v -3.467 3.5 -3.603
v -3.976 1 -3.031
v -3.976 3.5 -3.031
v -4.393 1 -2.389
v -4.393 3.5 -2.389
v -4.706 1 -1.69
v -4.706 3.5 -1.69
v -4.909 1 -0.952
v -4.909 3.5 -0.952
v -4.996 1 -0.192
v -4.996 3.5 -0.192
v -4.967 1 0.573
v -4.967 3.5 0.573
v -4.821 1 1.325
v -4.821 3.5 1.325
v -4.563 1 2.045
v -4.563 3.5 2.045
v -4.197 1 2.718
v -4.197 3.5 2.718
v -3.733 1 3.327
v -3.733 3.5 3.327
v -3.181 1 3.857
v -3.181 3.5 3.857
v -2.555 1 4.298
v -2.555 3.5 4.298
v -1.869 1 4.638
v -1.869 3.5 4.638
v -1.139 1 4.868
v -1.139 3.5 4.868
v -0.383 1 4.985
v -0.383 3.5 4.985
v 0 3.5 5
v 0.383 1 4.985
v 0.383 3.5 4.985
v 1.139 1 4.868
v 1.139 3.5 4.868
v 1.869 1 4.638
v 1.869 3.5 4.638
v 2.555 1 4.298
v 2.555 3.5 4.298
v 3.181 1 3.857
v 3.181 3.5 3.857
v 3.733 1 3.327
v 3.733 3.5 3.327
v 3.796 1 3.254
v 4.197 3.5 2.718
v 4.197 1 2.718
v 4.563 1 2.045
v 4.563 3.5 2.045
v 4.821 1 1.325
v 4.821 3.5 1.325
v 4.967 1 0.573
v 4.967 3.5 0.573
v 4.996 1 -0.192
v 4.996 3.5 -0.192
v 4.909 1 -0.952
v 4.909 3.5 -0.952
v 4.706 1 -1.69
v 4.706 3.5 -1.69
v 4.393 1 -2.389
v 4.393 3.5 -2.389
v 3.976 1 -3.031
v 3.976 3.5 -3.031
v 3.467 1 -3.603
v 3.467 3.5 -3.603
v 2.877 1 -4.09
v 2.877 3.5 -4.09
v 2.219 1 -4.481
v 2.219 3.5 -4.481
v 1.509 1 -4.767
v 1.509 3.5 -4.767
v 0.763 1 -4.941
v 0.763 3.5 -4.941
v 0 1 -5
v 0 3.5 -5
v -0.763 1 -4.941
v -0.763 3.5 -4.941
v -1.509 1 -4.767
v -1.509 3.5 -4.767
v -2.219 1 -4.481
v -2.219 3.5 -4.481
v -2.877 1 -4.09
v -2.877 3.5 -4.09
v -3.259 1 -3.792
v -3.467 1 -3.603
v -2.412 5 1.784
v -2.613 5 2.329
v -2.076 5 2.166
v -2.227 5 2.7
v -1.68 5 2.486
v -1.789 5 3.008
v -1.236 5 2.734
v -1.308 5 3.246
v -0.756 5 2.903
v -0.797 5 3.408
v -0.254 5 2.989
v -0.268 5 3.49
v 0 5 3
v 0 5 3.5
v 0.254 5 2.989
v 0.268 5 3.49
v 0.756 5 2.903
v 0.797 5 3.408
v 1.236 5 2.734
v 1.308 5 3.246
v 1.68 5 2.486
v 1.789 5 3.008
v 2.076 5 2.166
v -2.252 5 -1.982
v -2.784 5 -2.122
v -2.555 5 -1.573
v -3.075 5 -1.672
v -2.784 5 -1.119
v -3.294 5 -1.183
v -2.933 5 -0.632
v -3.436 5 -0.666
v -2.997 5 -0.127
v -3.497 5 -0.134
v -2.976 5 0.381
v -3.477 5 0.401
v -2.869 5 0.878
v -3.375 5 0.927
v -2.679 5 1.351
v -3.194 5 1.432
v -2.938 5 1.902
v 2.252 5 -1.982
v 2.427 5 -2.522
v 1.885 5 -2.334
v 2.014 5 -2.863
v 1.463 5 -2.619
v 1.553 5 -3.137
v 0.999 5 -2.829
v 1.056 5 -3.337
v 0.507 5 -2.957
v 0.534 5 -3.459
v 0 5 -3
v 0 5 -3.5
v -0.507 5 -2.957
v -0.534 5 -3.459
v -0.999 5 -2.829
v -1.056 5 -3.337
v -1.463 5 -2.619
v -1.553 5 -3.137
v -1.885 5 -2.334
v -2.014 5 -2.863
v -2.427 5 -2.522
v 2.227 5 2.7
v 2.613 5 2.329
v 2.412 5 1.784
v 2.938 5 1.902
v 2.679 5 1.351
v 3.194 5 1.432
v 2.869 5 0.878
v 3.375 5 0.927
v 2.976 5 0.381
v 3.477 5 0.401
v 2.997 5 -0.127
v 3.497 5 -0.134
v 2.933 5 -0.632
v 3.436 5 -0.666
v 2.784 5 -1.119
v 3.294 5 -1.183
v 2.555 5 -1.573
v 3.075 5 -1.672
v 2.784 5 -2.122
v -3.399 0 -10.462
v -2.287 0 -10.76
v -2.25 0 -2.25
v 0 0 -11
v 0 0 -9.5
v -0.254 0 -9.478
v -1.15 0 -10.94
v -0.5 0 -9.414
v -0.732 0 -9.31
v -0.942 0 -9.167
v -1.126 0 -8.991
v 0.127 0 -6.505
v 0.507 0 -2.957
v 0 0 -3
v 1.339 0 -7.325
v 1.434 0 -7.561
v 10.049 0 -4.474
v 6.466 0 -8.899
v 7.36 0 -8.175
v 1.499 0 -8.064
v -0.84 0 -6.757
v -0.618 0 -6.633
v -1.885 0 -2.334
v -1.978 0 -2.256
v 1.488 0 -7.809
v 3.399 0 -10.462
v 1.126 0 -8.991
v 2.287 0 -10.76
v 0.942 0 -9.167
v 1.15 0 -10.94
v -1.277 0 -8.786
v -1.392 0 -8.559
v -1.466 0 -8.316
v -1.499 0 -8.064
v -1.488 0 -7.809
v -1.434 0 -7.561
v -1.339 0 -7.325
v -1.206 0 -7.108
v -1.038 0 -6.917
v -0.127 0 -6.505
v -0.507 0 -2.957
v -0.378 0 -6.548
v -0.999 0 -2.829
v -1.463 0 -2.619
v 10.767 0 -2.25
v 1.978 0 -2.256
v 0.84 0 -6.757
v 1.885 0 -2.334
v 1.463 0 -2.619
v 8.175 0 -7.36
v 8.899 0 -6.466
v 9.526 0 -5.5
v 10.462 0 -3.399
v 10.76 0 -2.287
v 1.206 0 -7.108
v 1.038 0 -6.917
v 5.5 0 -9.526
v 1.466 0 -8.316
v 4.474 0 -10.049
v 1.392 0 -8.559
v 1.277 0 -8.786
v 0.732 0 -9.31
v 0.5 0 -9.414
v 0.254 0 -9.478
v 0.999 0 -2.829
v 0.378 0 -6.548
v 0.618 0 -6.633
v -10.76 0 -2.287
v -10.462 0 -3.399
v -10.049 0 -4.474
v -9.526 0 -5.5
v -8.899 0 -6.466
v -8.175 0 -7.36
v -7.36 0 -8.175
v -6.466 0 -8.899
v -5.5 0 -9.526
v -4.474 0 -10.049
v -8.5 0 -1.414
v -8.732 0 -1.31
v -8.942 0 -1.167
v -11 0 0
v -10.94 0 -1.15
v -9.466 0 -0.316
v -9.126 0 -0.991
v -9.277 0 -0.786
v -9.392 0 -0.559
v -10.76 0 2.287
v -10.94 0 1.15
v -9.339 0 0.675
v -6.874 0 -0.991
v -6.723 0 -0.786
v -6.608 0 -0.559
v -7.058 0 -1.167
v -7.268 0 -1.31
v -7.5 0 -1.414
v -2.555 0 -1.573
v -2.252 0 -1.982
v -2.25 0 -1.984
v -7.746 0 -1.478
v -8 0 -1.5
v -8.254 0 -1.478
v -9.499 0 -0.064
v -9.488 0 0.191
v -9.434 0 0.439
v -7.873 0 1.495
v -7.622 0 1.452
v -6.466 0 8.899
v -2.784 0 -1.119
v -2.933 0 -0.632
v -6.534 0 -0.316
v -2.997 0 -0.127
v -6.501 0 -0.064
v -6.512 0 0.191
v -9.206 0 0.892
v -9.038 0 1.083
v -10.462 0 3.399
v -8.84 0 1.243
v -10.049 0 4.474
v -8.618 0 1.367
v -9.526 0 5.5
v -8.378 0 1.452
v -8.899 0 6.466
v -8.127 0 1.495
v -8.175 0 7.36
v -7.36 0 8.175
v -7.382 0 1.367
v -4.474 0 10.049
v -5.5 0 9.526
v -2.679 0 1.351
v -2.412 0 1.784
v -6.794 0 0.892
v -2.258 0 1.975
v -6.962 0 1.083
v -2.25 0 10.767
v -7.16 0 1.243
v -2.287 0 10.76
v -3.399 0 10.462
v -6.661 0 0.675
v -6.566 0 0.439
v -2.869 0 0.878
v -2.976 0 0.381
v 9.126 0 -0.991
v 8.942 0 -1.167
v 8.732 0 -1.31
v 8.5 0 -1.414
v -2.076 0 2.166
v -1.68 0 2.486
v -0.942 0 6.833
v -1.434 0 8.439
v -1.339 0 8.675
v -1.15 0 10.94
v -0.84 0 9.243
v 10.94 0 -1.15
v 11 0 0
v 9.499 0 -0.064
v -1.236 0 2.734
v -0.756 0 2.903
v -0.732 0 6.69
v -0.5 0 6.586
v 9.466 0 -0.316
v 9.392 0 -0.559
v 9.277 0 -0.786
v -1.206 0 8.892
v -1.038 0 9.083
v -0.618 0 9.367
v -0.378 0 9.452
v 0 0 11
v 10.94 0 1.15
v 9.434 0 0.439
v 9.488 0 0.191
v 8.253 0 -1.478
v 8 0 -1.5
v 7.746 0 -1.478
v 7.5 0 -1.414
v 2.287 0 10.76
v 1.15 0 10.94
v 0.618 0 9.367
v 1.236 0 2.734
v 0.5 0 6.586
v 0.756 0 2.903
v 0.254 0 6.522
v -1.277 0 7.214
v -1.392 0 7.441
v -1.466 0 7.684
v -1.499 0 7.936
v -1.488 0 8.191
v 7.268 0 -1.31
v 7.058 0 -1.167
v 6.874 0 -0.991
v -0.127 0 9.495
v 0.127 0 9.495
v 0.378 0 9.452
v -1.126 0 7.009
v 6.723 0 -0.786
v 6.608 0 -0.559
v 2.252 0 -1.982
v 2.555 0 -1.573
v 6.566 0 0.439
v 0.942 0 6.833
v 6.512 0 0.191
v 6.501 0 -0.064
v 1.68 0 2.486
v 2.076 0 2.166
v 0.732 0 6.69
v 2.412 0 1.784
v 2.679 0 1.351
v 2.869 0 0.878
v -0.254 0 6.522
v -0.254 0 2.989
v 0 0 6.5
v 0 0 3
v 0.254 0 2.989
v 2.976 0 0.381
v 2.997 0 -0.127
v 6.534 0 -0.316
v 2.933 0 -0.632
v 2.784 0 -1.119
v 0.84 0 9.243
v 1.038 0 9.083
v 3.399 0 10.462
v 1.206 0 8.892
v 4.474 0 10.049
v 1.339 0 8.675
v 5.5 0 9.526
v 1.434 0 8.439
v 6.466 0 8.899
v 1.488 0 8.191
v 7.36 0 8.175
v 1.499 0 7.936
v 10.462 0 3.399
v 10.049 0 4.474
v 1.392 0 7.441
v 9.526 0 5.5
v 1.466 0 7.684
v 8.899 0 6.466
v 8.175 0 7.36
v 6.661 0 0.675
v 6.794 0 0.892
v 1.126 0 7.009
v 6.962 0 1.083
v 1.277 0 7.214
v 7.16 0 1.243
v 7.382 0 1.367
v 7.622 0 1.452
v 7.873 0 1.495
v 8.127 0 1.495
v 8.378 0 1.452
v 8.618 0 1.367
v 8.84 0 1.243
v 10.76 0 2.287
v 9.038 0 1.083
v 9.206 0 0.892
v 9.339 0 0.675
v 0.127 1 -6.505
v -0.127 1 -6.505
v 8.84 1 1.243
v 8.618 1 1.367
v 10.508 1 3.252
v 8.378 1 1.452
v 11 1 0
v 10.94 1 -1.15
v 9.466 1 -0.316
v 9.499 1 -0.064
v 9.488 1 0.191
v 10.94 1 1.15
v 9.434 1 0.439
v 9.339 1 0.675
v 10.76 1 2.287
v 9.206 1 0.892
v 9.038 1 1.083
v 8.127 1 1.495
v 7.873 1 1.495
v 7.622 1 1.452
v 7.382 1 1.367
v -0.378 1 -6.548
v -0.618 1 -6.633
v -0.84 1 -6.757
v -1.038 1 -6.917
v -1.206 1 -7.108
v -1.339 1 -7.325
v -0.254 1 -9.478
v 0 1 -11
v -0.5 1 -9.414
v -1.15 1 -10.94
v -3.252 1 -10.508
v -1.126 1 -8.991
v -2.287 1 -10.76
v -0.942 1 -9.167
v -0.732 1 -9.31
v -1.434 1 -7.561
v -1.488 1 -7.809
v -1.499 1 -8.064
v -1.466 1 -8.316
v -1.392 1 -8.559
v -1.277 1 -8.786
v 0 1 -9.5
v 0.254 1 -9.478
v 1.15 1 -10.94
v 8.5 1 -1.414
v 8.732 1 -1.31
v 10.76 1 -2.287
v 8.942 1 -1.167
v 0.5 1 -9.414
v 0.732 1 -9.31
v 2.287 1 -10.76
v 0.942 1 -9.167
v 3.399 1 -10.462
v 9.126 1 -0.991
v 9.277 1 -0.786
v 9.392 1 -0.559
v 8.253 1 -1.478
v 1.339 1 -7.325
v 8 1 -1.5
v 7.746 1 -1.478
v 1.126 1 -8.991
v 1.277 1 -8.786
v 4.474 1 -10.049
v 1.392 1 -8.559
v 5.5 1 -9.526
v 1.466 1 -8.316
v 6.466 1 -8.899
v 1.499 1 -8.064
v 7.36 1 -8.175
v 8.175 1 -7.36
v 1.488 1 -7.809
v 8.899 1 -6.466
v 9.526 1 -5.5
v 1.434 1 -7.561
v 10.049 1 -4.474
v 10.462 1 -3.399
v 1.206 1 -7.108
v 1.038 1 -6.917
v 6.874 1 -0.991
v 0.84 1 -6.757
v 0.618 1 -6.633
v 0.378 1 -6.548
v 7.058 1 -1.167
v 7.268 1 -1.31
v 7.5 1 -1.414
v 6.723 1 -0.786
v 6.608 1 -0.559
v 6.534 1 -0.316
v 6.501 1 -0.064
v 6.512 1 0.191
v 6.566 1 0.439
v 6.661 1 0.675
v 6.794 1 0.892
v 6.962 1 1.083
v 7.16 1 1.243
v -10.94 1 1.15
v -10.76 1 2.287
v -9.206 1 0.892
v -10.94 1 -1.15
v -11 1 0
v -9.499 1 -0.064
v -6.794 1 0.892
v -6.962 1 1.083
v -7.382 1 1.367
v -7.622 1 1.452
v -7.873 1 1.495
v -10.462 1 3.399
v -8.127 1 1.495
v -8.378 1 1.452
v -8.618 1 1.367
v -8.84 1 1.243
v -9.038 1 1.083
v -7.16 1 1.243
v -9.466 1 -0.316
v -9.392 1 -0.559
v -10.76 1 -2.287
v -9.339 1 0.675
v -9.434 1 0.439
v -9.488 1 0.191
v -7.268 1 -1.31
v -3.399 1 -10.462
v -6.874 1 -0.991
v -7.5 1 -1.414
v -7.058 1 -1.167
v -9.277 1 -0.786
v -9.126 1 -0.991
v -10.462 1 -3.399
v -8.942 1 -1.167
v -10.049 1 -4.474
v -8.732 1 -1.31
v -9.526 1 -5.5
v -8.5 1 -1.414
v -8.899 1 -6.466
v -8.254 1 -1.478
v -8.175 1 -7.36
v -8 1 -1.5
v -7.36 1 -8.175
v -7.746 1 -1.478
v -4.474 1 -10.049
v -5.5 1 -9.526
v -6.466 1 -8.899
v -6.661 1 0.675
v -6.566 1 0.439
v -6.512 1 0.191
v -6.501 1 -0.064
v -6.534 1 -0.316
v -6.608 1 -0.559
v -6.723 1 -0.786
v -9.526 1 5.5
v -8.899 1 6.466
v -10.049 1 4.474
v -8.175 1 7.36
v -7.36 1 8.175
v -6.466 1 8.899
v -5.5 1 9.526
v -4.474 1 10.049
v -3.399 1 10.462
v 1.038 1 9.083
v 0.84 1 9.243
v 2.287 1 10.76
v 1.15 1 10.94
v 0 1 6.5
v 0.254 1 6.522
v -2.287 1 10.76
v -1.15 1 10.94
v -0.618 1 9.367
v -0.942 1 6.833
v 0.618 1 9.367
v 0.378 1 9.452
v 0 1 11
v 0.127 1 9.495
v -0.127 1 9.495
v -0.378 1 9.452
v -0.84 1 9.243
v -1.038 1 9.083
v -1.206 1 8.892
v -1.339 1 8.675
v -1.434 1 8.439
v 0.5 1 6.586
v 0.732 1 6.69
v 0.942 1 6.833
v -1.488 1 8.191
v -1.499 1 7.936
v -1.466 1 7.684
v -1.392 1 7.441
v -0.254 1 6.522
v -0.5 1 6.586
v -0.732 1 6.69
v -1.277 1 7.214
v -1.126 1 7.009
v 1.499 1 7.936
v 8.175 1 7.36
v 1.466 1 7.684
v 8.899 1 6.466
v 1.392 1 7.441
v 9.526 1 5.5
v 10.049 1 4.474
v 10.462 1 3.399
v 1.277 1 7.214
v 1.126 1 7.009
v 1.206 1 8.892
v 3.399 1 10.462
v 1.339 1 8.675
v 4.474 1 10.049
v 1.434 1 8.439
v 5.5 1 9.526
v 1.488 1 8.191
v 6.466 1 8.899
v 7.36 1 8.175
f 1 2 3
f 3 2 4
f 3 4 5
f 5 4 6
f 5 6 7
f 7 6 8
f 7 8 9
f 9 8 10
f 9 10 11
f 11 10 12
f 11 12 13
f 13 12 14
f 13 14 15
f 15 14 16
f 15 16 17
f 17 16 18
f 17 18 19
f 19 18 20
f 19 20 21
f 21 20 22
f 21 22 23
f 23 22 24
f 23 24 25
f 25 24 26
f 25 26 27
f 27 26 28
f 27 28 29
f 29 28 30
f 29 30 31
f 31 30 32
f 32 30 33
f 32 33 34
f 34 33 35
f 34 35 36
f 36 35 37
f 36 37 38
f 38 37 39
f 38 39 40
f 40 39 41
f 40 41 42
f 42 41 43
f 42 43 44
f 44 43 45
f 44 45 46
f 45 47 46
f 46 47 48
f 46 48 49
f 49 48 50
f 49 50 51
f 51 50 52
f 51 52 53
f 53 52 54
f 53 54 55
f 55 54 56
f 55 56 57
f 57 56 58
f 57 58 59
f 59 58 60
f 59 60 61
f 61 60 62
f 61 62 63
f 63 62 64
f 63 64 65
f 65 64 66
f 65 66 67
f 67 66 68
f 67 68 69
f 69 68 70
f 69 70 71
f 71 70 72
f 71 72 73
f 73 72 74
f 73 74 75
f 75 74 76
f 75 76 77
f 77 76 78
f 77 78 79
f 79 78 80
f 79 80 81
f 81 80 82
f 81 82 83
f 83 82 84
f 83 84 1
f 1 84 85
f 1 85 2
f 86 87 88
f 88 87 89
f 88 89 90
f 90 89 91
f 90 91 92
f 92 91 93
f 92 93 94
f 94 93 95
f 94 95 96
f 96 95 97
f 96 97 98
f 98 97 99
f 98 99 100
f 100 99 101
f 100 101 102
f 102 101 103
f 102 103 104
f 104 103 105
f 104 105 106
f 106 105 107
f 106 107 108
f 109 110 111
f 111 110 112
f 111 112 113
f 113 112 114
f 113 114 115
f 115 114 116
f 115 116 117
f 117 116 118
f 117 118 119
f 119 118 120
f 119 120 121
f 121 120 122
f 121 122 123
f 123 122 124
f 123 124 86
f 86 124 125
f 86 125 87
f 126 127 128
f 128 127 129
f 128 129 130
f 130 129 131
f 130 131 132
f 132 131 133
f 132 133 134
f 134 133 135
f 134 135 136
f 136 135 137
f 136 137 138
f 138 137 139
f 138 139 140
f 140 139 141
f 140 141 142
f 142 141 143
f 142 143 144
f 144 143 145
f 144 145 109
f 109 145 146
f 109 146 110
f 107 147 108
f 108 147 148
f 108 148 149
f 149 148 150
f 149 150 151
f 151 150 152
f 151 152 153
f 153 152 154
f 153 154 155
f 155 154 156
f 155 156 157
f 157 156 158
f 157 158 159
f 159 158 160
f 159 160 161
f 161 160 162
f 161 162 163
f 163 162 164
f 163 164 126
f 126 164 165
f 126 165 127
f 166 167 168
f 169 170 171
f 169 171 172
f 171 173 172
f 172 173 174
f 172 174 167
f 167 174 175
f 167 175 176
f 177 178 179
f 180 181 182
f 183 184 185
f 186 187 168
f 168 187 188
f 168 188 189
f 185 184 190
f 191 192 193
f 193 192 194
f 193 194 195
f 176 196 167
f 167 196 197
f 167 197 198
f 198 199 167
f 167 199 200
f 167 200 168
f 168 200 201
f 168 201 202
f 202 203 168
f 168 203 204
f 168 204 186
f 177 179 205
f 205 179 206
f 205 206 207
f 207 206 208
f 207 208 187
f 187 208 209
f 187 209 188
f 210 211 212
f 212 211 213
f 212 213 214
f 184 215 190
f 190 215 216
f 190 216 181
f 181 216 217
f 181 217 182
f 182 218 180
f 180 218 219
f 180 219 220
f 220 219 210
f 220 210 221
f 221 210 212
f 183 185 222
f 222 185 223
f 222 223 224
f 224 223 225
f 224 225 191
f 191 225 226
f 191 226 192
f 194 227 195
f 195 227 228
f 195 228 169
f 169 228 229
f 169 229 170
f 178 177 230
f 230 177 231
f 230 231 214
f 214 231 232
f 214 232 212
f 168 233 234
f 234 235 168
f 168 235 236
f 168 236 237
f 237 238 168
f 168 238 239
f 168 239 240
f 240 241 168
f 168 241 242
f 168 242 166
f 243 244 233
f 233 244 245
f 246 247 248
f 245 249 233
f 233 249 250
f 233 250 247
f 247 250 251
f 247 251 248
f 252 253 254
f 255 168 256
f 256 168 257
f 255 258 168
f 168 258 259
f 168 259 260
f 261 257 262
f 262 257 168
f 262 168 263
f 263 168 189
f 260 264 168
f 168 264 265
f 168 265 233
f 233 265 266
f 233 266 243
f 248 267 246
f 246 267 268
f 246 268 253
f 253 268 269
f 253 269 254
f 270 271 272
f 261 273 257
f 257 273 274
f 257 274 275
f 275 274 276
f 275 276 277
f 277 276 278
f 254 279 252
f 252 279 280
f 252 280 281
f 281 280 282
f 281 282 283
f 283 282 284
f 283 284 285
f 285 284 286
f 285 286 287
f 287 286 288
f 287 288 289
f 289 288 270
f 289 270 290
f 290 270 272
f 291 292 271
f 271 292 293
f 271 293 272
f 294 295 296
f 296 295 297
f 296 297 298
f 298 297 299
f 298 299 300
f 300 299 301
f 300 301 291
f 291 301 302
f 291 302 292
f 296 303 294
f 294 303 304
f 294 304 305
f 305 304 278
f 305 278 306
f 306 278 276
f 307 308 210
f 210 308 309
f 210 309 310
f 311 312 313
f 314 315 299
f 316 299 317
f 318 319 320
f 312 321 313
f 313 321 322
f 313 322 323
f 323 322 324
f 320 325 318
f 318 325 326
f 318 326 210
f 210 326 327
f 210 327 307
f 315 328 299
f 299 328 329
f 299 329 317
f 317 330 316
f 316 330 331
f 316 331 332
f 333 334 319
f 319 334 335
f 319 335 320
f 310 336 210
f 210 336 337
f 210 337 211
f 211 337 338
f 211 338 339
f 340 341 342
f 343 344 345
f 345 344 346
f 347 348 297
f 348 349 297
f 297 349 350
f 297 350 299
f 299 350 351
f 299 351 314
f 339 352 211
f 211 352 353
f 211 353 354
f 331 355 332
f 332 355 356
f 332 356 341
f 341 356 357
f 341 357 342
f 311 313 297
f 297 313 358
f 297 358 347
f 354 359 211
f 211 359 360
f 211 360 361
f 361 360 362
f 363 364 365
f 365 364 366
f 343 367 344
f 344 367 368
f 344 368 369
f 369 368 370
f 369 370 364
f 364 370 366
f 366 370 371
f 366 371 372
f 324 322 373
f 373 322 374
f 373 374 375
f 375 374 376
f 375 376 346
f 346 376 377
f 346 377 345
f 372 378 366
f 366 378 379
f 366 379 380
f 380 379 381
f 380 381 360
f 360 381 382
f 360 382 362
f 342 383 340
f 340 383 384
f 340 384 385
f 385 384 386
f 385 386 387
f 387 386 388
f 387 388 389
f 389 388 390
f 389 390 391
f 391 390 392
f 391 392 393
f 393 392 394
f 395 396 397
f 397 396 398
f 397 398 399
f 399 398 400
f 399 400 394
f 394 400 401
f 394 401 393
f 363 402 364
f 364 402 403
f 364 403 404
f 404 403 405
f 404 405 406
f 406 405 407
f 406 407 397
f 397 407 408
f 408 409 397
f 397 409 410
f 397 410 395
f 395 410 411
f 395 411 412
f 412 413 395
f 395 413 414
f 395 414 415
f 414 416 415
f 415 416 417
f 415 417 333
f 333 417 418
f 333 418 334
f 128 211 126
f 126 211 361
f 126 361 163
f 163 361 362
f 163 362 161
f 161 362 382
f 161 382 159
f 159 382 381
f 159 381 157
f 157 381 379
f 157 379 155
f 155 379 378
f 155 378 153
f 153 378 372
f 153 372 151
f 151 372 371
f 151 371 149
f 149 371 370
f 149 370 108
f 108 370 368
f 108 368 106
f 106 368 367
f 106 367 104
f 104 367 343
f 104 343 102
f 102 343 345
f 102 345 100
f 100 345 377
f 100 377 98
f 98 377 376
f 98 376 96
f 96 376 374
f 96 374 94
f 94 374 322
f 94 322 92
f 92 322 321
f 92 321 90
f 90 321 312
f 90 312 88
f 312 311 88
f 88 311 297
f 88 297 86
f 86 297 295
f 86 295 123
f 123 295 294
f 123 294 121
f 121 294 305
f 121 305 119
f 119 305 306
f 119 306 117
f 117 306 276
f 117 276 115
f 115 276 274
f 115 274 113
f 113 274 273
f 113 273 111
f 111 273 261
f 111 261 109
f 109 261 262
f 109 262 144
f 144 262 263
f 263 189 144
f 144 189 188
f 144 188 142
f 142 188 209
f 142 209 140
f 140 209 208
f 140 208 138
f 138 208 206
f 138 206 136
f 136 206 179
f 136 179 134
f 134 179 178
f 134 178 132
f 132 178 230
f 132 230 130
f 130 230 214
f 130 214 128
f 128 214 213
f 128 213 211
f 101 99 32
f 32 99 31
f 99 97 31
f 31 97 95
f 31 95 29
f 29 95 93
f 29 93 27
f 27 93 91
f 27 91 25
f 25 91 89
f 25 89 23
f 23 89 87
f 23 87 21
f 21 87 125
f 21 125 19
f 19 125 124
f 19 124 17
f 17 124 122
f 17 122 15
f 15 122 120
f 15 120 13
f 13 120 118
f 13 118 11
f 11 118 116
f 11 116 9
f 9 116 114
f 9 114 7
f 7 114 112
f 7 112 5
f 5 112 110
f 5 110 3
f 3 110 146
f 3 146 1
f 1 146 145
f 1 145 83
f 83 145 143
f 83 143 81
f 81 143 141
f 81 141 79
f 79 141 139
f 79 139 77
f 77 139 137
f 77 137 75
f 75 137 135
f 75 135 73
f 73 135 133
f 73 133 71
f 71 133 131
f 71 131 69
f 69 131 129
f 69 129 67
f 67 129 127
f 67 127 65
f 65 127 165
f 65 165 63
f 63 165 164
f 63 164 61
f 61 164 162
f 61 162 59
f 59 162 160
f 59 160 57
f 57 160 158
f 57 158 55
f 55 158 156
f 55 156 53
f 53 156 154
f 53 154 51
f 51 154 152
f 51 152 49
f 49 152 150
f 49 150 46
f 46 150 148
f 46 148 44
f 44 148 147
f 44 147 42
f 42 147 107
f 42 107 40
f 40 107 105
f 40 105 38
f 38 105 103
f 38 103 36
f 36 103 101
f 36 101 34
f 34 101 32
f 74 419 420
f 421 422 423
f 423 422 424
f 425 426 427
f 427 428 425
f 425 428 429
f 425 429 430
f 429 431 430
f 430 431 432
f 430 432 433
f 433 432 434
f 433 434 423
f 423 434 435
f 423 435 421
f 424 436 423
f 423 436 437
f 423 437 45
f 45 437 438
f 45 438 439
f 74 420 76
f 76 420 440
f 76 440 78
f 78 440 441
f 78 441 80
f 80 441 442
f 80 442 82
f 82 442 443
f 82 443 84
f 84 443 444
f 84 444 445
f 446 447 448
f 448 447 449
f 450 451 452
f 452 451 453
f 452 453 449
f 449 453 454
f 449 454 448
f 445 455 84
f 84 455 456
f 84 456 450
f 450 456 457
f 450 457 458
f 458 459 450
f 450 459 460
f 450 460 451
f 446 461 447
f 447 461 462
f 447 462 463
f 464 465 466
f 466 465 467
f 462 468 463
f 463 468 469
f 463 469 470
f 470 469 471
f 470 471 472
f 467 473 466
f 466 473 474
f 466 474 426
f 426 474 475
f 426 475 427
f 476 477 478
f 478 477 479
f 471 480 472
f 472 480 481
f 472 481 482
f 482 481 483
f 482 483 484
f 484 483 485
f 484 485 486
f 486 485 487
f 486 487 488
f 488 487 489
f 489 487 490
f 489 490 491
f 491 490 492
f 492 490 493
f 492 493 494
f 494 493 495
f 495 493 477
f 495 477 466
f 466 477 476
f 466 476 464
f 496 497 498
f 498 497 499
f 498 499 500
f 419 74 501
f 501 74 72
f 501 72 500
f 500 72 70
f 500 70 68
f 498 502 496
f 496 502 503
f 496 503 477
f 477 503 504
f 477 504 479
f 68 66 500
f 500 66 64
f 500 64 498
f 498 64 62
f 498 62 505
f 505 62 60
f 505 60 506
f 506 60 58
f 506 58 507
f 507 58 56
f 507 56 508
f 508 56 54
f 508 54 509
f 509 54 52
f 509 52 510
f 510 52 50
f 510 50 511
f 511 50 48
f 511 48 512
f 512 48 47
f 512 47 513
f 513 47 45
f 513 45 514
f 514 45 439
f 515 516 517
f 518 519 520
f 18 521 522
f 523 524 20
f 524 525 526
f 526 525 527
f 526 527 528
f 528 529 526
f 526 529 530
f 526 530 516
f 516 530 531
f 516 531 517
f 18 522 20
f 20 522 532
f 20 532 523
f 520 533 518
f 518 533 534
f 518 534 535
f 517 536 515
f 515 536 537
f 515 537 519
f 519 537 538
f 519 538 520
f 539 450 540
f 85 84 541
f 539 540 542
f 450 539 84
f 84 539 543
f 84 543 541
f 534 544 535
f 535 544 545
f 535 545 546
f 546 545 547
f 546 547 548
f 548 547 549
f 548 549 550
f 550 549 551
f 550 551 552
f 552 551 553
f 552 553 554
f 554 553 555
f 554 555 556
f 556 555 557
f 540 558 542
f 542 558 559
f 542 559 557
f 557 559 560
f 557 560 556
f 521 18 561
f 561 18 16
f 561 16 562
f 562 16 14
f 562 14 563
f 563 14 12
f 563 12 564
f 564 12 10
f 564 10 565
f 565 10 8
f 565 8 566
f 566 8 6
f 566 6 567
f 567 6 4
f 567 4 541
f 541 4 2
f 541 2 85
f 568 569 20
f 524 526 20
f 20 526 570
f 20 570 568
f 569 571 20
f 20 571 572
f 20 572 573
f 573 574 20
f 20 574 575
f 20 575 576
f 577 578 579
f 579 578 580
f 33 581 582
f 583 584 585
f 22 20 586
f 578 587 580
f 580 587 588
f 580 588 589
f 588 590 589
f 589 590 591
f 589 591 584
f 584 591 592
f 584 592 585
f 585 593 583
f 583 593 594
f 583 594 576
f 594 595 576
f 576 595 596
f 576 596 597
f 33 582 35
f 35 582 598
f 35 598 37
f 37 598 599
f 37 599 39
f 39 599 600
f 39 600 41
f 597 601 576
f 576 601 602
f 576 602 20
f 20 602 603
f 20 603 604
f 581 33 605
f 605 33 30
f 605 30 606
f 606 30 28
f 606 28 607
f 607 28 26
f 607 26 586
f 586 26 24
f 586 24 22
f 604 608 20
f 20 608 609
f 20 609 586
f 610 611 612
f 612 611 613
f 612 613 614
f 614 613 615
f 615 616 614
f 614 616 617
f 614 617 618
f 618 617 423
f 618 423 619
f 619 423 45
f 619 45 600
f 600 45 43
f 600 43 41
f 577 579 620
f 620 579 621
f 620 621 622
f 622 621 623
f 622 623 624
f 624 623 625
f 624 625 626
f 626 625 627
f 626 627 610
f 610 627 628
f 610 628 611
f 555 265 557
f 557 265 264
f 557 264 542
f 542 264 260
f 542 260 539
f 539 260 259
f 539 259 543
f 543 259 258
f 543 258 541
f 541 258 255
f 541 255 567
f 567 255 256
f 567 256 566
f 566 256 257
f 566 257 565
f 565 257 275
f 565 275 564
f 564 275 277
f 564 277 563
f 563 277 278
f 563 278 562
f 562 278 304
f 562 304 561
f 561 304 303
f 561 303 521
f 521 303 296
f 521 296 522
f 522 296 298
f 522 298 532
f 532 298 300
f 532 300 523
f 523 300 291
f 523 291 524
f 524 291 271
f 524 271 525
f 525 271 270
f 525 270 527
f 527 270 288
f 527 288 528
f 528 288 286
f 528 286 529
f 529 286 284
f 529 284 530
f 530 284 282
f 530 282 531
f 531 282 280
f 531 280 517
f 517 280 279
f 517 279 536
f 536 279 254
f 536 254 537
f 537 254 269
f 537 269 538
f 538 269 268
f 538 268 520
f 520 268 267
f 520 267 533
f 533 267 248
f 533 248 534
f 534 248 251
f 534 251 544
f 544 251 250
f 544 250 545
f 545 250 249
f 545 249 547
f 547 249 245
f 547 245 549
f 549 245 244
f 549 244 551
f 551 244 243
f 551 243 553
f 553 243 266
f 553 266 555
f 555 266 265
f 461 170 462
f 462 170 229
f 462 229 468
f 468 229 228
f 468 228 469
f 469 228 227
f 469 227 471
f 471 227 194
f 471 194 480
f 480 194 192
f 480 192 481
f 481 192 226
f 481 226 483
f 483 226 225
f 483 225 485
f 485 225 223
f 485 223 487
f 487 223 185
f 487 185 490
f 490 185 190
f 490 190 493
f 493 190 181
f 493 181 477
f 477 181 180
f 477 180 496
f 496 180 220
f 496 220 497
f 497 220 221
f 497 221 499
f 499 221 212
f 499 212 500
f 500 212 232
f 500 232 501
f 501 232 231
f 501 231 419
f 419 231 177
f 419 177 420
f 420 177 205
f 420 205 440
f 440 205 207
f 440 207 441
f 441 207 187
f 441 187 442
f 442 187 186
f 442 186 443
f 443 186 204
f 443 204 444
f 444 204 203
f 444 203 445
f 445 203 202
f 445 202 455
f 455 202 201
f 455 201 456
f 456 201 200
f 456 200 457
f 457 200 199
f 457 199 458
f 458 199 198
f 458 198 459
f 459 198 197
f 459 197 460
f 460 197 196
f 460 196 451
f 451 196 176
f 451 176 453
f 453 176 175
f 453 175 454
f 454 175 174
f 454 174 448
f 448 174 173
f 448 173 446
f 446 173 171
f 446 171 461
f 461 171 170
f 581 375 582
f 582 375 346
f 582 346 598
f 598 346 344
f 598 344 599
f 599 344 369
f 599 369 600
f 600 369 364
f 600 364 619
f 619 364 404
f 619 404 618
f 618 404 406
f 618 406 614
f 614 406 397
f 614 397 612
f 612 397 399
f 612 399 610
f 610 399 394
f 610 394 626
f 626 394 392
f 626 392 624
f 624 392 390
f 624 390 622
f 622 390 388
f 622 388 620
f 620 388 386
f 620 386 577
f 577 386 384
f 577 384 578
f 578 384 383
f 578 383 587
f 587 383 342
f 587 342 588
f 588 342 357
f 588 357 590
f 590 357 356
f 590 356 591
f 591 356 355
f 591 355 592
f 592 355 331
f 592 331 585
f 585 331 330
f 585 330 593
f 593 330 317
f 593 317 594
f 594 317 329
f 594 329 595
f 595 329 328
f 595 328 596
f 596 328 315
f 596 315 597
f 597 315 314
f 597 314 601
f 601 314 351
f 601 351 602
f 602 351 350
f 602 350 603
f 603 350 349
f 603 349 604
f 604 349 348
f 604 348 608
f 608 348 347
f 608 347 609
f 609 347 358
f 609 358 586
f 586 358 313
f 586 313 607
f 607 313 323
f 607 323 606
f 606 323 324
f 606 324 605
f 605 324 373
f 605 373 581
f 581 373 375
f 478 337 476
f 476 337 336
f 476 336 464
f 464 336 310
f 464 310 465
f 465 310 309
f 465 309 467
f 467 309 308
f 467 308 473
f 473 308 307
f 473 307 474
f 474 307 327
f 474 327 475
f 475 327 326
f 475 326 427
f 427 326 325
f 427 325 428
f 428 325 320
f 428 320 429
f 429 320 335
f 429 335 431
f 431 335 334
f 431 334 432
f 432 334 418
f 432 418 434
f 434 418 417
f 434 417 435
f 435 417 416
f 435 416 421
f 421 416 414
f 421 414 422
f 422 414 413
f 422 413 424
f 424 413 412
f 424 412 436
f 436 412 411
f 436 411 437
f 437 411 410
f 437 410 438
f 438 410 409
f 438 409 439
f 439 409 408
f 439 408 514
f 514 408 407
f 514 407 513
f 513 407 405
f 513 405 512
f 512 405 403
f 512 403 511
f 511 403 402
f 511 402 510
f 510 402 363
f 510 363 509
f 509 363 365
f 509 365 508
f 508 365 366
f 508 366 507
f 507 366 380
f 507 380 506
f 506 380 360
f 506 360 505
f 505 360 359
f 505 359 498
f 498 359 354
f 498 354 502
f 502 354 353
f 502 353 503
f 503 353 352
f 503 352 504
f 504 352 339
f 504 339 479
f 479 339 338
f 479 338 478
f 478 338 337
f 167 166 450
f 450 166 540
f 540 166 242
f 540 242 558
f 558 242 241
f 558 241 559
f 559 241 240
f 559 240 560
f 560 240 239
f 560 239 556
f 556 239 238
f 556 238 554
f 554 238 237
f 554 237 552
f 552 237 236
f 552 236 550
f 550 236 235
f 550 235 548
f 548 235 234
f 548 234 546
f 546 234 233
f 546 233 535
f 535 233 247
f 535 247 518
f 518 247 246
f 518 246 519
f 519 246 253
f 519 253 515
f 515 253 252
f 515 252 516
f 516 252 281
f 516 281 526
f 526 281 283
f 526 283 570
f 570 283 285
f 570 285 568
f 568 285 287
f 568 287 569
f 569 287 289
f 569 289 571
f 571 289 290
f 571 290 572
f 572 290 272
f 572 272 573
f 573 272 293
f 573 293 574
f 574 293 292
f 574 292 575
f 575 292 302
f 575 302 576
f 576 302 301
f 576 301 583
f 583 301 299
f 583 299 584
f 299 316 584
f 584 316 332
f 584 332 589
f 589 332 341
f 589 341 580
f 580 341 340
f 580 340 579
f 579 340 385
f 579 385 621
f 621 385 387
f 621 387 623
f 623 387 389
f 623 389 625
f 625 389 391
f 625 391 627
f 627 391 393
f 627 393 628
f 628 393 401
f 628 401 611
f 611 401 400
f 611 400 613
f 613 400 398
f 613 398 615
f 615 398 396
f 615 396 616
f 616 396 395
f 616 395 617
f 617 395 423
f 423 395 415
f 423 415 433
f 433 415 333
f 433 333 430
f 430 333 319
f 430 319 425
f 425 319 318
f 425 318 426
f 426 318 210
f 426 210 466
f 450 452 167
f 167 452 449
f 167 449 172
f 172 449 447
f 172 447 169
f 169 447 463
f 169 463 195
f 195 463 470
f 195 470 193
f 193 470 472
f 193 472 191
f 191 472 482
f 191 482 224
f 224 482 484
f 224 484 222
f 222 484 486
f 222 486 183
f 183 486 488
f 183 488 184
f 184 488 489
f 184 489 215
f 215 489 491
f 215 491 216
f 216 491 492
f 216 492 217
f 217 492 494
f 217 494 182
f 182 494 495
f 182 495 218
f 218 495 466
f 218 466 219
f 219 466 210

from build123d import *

# Parameters (mm, degrees)
SKETCH1_R           = 5
SKETCH1_R_2         = 3
BOSS_EXTRUDE1_DEPTH = 5
CHAMFER1_SIZE       = 1.5
SKETCH2_R           = 11
SKETCH2_R_2         = 5
SKETCH2_R_3         = 1.5
BOSS_EXTRUDE2_DEPTH = 1


with BuildPart() as part:
    # Sketch1 → Boss-Extrude1 (new body)
    with BuildSketch(Plane(origin=(0, 0, 0), x_dir=(1, 0, 0), z_dir=(0, 1, 0))):
        Circle(SKETCH1_R)
        Circle(SKETCH1_R_2, mode=Mode.SUBTRACT)
    extrude(amount=BOSS_EXTRUDE1_DEPTH)

    # Chamfer1
    chamfer1_edges = [part.edges().sort_by_distance(p)[0] for p in [
        (-5, 5, 0),
    ]]
    chamfer(chamfer1_edges, length=CHAMFER1_SIZE)

    # Sketch2 → Boss-Extrude2 (add)
    with BuildSketch(Plane.XZ):
        Circle(SKETCH2_R)
        Circle(SKETCH2_R_2, mode=Mode.SUBTRACT)
        with Locations((0, 8)):
            Circle(SKETCH2_R_3, mode=Mode.SUBTRACT)
        with Locations((-8, 0)):
            Circle(SKETCH2_R_3, mode=Mode.SUBTRACT)
        with Locations((0, -8)):
            Circle(SKETCH2_R_3, mode=Mode.SUBTRACT)
        with Locations((8, 0)):
            Circle(SKETCH2_R_3, mode=Mode.SUBTRACT)
    extrude(amount=-BOSS_EXTRUDE2_DEPTH)


solid = part.part
